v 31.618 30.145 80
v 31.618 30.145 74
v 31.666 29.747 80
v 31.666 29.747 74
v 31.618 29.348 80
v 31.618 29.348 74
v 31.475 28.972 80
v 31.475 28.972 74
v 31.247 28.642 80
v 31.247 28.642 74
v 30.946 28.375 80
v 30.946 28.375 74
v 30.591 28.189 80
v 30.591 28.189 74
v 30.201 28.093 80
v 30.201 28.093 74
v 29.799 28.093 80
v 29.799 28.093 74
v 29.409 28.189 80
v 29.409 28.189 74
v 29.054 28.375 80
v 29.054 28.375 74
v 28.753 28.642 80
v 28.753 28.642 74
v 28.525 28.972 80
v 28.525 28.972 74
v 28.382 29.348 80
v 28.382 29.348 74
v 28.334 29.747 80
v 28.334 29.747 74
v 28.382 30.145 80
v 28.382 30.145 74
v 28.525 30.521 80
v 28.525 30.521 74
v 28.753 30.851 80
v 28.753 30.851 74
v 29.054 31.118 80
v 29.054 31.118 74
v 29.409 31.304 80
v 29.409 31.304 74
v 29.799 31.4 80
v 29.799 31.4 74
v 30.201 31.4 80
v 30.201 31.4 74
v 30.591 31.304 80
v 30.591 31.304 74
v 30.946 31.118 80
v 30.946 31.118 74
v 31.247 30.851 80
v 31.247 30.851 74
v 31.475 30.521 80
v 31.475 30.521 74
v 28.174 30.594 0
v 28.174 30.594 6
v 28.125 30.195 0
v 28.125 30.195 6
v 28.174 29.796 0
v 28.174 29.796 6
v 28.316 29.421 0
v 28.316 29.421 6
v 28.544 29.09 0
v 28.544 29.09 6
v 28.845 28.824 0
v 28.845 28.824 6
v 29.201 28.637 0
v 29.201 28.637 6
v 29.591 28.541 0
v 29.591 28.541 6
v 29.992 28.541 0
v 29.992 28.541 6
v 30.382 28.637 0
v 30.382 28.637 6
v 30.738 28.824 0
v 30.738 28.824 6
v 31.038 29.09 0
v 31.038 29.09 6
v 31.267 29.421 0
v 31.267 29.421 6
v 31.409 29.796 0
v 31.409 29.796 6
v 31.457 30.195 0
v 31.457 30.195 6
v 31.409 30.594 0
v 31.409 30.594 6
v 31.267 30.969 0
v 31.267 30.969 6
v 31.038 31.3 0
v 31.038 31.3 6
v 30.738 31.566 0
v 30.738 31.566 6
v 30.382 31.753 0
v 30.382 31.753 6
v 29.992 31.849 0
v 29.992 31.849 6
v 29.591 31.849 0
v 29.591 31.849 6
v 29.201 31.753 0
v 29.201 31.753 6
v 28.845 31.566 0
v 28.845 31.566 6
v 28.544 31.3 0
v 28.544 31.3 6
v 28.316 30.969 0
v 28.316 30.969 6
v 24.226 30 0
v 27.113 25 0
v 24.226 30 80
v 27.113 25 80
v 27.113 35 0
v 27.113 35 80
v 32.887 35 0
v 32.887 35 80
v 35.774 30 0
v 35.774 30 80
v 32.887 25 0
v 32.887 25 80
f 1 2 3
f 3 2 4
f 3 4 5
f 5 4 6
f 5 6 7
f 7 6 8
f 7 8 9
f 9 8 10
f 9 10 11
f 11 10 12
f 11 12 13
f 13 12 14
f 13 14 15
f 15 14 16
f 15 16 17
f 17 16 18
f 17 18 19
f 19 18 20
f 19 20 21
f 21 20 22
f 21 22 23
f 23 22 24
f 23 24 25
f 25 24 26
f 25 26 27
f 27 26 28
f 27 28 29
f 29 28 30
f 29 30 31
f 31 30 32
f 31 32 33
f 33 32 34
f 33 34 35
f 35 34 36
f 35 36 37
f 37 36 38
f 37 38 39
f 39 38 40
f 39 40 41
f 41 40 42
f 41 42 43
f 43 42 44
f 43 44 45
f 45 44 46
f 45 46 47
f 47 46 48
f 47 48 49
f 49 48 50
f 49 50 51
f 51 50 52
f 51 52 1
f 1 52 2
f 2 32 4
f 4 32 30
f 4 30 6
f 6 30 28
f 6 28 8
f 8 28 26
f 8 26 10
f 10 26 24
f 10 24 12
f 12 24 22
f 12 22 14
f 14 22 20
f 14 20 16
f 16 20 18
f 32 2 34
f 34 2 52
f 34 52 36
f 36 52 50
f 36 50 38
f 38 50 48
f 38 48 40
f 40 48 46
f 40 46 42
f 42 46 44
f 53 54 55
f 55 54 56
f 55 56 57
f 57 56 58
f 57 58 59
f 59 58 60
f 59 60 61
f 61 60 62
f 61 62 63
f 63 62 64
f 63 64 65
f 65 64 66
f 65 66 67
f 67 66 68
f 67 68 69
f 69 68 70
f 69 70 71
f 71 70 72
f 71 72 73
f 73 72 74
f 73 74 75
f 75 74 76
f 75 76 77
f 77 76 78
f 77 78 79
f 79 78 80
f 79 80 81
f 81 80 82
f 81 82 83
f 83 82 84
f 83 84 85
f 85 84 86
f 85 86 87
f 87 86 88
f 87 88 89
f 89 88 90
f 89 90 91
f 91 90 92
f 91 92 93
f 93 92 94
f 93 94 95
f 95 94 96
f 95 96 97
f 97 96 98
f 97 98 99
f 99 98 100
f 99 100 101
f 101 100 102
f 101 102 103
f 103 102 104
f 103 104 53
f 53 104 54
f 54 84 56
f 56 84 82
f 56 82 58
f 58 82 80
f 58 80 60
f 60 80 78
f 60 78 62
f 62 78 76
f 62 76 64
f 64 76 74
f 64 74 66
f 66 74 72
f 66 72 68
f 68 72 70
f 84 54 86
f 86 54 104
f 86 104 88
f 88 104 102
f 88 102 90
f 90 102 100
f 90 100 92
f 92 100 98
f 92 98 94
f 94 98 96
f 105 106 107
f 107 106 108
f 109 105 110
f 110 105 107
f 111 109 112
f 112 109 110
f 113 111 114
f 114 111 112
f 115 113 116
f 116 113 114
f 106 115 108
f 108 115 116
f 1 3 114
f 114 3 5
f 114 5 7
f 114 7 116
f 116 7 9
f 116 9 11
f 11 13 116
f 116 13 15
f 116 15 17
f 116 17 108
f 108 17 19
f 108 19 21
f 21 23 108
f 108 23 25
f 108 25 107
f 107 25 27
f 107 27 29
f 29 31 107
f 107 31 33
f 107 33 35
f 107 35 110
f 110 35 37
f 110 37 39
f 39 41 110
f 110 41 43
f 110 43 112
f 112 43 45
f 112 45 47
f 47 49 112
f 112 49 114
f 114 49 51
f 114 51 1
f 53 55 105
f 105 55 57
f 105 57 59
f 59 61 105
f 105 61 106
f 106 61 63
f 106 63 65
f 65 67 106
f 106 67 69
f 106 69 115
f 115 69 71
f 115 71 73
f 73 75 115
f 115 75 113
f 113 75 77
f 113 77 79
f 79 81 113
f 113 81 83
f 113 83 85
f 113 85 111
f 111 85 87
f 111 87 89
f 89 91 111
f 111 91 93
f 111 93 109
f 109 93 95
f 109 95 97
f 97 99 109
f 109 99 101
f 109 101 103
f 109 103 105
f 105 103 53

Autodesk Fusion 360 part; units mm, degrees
sketch "Sketch1" plane through (0, 0, 0) normal (0, 0, 1) x (1, 0, 0)
  line L0 (32.8868, 25) -> (35.7735, 30)
  line L1 (35.7735, 30) -> (32.8868, 35)
  line L2 (32.8868, 35) -> (27.1132, 35)
  line L3 (27.1132, 35) -> (24.2265, 30)
  line L4 (24.2265, 30) -> (27.1132, 25)
  line L5 (27.1132, 25) -> (32.8868, 25)
  point P0 (30, 30)
  dimension "d1" = 5
extrude "Extrude1" add sketch "Sketch1" along normal blind 80
hole "Hole1" at (29.7914, 30.1949, 0) direction (0, 0, 1) diameter 3.332 depth 6 tip angle 180
hole "Hole2" at (30, 29.7466, 80) direction (0, 0, -1) diameter 3.332 depth 6 tip angle 180
